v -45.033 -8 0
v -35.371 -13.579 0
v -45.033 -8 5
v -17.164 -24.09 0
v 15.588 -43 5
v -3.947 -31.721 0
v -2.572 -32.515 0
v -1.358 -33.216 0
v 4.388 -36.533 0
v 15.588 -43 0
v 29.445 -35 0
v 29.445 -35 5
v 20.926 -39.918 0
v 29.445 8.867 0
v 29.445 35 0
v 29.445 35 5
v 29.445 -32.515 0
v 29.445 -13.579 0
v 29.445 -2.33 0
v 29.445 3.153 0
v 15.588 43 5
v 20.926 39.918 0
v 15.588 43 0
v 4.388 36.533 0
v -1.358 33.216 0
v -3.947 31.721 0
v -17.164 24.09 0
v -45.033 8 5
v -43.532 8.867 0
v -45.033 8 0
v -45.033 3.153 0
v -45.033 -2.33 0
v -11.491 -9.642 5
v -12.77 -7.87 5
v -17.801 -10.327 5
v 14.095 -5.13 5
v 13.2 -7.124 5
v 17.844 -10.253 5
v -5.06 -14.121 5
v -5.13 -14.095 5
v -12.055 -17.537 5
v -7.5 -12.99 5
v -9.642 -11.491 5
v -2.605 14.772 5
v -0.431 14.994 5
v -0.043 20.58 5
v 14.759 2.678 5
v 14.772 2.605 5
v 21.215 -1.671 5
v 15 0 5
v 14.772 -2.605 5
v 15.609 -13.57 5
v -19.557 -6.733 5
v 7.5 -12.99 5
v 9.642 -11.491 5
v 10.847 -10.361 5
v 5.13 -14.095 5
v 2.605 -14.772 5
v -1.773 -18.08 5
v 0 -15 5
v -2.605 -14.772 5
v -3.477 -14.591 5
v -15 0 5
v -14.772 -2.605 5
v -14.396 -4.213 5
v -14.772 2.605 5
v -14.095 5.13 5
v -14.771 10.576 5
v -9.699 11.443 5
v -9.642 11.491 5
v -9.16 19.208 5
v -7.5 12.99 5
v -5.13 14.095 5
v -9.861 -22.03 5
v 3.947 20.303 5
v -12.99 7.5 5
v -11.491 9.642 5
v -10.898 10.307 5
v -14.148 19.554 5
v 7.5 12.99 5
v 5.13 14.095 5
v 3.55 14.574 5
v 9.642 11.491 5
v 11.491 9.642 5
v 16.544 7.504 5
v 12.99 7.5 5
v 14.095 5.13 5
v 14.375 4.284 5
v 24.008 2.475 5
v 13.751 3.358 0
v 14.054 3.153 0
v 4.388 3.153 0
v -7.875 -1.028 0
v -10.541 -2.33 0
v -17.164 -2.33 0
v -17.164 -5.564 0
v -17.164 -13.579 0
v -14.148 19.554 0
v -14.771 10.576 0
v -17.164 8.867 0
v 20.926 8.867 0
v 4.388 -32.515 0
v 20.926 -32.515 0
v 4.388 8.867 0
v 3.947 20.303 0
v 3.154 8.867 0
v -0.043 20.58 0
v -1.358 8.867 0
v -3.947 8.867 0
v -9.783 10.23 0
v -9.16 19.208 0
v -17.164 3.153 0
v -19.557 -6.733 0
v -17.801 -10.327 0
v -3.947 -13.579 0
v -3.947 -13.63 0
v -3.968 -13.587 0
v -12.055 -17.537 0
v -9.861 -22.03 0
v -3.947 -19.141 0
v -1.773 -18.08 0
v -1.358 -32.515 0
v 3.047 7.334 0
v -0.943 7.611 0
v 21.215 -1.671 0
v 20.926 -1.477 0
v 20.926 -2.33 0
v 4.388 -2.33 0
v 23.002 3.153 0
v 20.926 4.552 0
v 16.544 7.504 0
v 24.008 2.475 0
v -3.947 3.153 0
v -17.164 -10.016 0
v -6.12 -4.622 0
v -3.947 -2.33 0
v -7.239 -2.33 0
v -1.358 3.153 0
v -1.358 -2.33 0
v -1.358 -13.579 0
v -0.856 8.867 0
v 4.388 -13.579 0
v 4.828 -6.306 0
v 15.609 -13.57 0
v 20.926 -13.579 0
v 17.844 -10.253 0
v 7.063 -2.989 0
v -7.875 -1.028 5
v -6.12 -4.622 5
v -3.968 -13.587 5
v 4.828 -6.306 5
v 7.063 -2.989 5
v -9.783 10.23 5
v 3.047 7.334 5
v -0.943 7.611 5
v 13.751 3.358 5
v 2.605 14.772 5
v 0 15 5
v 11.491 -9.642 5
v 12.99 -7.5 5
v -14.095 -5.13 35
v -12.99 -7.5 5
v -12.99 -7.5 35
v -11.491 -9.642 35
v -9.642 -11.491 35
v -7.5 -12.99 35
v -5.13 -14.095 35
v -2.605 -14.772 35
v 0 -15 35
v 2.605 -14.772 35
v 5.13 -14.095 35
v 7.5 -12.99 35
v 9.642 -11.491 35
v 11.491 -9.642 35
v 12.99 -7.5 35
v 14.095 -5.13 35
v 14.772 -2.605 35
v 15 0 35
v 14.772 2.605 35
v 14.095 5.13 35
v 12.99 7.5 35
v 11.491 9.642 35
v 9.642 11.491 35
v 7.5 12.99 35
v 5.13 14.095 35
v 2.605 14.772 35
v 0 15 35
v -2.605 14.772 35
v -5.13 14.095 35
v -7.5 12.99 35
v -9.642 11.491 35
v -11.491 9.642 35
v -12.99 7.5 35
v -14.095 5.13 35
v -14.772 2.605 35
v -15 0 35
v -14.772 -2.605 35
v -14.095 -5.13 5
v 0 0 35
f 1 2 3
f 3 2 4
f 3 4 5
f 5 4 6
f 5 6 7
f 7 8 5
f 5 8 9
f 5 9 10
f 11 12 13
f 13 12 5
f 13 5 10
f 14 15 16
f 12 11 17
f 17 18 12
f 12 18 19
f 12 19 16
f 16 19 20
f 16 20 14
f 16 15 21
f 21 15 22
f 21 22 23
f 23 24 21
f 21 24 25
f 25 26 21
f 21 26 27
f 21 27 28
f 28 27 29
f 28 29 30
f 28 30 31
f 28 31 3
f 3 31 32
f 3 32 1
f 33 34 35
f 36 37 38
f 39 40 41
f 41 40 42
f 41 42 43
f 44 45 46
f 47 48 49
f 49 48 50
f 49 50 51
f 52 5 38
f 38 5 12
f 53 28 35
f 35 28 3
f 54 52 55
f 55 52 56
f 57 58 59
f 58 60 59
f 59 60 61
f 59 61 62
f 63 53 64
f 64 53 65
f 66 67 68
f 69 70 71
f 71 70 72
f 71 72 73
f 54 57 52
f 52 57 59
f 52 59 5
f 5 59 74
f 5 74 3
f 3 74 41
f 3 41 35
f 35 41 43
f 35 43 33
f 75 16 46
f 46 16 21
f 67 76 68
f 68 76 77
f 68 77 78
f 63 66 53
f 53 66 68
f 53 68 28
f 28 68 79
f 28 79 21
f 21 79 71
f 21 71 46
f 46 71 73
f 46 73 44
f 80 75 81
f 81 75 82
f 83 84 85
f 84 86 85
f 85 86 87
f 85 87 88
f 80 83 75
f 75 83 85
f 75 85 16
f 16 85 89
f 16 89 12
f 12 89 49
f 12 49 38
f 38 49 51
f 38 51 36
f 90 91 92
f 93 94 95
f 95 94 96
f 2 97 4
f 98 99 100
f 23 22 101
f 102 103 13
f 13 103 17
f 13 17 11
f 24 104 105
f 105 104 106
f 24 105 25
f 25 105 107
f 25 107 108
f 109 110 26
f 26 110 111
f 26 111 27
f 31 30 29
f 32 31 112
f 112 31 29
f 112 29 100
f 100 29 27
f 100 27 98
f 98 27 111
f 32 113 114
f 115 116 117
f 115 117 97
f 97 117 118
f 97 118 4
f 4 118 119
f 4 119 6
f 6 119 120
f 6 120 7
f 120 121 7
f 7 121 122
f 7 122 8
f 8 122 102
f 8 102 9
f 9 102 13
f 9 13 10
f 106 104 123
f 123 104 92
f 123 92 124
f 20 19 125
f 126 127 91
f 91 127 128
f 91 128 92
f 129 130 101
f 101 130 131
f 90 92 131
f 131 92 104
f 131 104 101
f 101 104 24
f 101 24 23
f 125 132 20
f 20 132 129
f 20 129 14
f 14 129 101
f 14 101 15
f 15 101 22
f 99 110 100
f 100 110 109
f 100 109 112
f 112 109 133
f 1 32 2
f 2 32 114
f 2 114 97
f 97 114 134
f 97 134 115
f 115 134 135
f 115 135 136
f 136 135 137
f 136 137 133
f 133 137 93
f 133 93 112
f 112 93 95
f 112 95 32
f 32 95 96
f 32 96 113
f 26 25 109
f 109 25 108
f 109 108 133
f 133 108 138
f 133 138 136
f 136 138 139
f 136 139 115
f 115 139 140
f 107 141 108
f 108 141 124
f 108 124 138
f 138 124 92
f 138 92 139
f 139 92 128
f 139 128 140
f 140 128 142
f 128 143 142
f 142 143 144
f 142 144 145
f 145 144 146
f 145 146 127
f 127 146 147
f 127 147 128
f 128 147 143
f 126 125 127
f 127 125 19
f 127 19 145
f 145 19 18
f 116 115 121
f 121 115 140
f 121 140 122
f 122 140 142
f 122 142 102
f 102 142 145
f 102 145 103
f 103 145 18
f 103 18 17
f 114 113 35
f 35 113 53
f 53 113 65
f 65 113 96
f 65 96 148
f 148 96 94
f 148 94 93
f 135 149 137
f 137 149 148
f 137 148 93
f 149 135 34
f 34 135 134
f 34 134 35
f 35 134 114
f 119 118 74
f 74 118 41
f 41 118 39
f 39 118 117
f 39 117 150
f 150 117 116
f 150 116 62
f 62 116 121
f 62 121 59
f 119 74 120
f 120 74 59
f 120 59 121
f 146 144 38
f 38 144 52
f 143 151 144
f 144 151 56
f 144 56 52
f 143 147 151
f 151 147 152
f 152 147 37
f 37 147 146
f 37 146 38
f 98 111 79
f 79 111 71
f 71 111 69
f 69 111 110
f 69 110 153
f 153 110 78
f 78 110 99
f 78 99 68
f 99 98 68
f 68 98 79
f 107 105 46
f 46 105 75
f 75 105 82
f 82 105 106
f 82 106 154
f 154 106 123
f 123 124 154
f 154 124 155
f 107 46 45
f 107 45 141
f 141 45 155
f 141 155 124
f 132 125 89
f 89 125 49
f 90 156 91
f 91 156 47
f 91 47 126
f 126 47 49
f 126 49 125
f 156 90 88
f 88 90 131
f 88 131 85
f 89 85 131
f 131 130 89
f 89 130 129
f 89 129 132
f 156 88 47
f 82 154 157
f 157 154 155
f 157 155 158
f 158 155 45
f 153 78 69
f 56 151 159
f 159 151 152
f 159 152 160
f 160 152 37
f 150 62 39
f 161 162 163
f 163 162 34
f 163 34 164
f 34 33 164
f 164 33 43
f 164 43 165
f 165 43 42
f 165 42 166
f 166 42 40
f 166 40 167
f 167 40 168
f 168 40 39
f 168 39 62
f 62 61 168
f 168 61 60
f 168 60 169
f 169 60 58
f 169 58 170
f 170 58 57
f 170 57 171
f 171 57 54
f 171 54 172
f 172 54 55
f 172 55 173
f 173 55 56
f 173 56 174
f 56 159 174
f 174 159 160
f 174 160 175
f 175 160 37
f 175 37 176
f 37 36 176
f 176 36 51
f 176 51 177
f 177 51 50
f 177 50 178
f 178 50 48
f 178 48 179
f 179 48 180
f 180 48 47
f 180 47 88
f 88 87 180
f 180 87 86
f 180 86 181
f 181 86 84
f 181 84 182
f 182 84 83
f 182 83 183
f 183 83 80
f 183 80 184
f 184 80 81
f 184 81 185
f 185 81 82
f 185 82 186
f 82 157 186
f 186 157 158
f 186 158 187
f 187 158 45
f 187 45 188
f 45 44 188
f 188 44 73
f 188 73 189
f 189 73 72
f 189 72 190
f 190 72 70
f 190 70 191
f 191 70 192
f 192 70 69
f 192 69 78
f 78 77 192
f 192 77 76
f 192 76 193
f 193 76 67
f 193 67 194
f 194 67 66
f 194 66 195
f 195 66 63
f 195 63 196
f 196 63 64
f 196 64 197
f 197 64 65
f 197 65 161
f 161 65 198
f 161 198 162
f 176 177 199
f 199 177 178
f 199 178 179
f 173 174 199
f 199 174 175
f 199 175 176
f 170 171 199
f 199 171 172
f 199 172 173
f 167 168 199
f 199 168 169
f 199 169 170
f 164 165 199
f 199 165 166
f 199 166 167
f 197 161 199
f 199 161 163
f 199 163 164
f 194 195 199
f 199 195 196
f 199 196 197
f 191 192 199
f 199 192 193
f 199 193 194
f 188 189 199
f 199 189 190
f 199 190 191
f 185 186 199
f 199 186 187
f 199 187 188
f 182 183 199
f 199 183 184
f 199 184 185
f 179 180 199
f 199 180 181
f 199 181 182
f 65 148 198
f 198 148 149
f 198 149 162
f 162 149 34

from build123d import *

# Parameters (mm, degrees)
BOSS_EXTRUDE1_DEPTH = 5
CUT_EXTRUDE7_DEPTH  = 6
CIRPATTERN1_COUNT   = 3
SKETCH11_R          = 15
BOSS_EXTRUDE2_DEPTH = 30


with BuildPart() as part:
    # Sketch1 → Boss-Extrude1 (new body)
    with BuildSketch(Plane.XY):
        Polygon((-45.033320997, -8), (-45.033320997, 8), (15.588457268, 43), (29.444863729, 35), (29.444863729, -35), (15.588457268, -43), align=None)
    extrude(amount=BOSS_EXTRUDE1_DEPTH)

    # Sketch9 → Cut-Extrude7 (cut, through all)
    with BuildSketch(Plane.XY.offset(5)):
        Polygon((-19.556667785, -6.732996787), (-7.875286887, -1.028144438), (-6.119947703, -4.622415484), (-17.801328601, -10.327267832), align=None)
        Polygon((-12.054679914, -17.536708093), (-3.967570061, -13.587194928), (-1.773396081, -18.080033735), (-9.860505933, -22.029546899), align=None)
    cut_extrude7 = extrude(amount=-CUT_EXTRUDE7_DEPTH, mode=Mode.SUBTRACT)

    # CirPattern1: Cut-Extrude7 ×3 about axis
    cirpattern1_axis = Axis((0, 0, 0), (0, 0, 1))
    for i in range(1, CIRPATTERN1_COUNT):
        add(cut_extrude7.rotate(cirpattern1_axis, i * 360 / CIRPATTERN1_COUNT), mode=Mode.SUBTRACT)

    # Sketch11 → Boss-Extrude2 (add)
    with BuildSketch(Plane.XY.offset(5)):
        Circle(SKETCH11_R)
    extrude(amount=BOSS_EXTRUDE2_DEPTH)


solid = part.part
